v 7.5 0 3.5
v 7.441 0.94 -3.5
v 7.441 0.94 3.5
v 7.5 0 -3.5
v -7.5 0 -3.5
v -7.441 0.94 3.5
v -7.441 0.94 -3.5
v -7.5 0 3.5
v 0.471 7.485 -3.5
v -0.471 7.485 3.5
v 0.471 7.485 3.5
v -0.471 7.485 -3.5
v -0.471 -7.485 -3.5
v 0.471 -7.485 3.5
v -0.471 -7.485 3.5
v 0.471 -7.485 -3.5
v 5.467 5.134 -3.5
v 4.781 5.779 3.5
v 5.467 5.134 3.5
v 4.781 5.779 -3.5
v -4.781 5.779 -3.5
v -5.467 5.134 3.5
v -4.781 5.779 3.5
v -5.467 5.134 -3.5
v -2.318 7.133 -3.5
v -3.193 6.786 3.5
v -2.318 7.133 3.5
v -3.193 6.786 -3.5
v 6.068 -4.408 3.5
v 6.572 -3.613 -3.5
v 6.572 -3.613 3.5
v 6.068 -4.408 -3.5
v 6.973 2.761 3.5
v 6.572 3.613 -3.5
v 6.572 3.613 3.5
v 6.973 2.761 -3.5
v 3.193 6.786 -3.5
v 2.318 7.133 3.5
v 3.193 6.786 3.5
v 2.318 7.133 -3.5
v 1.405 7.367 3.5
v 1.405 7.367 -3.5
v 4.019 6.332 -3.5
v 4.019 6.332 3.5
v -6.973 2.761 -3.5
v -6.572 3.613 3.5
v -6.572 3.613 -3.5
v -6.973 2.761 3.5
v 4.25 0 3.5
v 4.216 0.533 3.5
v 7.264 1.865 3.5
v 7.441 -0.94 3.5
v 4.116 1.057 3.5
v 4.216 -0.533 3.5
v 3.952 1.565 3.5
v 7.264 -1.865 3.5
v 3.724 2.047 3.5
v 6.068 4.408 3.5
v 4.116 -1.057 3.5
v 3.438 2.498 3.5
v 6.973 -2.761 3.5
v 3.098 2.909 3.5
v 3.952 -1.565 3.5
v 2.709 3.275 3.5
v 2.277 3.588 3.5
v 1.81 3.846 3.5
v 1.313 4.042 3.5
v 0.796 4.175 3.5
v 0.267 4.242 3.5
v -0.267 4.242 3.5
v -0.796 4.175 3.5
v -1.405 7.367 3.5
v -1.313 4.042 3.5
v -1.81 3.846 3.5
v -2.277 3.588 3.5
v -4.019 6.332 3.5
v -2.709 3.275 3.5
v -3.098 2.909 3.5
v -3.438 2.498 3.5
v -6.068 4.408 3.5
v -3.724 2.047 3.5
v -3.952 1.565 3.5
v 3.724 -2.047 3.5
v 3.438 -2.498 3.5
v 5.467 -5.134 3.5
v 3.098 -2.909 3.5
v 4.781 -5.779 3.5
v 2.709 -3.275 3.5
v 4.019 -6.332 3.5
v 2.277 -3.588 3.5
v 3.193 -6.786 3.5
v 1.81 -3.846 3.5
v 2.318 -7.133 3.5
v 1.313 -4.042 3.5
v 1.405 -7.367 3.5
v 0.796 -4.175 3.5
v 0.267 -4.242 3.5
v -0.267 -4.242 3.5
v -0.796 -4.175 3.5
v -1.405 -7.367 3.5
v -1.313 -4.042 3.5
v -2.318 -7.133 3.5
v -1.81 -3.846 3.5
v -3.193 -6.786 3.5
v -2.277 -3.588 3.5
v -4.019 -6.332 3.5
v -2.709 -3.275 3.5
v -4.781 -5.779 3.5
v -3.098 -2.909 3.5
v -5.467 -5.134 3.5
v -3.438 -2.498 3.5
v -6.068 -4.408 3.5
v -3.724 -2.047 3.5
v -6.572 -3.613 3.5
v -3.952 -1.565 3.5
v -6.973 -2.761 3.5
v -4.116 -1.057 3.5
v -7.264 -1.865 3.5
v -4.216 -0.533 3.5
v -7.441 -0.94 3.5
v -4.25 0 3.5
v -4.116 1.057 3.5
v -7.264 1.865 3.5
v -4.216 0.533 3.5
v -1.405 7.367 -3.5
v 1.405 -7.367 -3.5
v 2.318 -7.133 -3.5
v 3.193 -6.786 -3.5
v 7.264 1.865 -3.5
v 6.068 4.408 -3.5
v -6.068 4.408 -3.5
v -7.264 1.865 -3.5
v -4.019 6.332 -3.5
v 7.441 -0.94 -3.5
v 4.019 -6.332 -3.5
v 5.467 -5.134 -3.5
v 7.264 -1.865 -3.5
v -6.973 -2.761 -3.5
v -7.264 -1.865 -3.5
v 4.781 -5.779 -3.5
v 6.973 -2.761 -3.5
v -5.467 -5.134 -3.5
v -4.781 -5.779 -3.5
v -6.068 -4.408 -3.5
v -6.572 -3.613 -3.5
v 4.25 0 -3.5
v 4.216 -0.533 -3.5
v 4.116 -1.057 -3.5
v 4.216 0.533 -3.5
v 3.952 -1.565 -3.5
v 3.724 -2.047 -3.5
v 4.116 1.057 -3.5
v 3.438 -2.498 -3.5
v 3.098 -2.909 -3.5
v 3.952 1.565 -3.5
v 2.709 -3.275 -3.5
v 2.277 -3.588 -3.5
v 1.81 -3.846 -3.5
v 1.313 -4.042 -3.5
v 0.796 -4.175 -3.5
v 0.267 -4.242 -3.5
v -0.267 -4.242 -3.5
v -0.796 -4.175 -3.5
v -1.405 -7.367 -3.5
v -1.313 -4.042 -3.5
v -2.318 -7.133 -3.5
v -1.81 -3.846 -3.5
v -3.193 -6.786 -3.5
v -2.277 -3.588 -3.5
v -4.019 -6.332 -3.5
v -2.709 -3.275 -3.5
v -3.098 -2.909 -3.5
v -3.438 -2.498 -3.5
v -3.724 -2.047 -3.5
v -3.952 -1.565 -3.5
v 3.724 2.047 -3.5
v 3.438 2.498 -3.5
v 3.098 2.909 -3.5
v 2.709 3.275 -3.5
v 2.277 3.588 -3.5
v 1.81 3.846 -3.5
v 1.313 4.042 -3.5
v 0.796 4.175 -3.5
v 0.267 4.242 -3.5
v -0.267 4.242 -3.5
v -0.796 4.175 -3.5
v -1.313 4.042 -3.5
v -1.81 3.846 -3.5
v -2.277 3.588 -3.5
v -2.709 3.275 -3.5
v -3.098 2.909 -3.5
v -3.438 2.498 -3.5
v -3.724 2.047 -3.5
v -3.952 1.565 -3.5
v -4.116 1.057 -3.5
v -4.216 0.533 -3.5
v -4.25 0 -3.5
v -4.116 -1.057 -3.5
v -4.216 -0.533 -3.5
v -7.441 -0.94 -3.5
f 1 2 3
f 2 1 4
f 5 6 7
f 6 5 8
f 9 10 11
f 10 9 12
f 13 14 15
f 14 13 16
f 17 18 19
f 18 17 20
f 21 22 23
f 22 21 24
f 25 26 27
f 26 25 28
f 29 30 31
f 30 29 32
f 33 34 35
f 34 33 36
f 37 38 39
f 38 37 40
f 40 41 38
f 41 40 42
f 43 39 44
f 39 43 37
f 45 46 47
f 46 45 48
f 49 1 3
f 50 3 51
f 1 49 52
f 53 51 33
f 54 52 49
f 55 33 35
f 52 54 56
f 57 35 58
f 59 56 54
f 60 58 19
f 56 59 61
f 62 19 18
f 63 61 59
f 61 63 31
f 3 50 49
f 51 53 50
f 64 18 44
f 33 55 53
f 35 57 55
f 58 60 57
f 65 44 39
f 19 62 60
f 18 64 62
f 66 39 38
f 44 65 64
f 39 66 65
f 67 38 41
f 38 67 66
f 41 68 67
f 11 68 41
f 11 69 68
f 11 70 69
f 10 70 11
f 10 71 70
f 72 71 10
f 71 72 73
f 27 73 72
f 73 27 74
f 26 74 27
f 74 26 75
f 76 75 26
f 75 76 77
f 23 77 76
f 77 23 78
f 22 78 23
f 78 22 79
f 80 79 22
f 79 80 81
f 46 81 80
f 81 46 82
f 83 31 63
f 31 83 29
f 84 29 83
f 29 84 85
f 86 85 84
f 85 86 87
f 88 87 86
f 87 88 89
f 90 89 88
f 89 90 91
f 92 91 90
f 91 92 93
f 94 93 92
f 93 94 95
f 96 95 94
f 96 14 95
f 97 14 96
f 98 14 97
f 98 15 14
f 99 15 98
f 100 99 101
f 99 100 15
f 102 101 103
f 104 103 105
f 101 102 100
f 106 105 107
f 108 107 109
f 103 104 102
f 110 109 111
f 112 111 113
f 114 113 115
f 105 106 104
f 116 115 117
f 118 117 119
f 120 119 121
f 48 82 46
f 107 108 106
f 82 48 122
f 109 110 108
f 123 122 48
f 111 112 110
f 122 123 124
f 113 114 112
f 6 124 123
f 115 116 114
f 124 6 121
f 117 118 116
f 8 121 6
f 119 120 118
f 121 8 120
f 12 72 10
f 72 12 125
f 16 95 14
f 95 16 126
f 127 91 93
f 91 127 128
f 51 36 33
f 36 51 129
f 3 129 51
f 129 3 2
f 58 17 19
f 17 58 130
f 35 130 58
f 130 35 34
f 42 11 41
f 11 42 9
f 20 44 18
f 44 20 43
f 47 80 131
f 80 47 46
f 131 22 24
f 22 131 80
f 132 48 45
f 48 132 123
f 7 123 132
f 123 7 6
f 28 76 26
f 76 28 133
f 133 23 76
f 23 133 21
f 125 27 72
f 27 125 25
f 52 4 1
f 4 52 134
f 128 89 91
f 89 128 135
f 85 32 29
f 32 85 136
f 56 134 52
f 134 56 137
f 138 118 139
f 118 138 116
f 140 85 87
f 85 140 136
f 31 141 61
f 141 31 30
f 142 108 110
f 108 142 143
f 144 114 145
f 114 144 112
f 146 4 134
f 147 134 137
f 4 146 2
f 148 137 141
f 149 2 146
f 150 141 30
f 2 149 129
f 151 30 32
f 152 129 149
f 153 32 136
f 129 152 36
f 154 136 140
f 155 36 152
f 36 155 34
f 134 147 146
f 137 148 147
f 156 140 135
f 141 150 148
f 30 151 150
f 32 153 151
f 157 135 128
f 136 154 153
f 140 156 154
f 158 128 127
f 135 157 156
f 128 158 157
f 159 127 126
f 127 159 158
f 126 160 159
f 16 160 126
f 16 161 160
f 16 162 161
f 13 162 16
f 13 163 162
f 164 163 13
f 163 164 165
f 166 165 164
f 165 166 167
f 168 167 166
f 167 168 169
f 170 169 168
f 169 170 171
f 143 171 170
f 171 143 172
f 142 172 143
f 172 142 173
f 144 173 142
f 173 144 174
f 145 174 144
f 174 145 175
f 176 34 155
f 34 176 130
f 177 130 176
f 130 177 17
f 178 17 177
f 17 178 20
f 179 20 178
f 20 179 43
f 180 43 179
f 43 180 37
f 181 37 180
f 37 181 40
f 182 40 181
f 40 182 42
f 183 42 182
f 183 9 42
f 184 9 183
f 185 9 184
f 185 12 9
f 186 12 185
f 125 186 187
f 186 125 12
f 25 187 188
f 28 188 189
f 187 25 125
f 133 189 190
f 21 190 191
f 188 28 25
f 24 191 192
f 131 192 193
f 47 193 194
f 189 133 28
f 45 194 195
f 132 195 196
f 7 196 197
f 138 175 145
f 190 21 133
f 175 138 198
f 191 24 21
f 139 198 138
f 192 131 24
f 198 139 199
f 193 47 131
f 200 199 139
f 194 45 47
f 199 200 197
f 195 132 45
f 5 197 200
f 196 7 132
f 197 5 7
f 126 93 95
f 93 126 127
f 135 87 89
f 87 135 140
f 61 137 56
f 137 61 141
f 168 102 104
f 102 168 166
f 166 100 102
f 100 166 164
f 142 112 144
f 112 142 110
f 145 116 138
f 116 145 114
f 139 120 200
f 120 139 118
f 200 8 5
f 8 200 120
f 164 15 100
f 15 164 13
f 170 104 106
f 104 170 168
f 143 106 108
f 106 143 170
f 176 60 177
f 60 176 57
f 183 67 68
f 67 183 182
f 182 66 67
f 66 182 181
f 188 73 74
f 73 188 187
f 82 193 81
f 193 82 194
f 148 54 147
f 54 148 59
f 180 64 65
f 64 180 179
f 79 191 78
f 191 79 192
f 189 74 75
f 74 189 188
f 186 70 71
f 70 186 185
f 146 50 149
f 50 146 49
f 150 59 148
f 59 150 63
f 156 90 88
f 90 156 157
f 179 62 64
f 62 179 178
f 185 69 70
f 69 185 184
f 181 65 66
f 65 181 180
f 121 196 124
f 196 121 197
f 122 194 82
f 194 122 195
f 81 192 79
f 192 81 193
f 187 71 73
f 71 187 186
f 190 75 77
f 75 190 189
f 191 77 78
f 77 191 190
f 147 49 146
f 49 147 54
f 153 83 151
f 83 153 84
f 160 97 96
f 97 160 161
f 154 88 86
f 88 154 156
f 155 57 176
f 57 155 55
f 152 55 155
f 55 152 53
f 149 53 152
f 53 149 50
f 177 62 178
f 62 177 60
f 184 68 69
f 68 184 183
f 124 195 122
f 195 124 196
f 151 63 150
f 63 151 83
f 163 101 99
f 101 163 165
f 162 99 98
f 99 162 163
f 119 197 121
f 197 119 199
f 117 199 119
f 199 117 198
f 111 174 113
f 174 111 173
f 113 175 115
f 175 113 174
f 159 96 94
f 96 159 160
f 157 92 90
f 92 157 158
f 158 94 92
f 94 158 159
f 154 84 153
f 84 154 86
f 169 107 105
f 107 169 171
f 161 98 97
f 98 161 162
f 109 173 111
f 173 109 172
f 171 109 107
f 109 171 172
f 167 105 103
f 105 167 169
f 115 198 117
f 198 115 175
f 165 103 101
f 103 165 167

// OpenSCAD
$fn = 50;


difference() {
	union() {
		translate(v = [0, 0, -3.5000000000]) {
			cylinder(h = 7, r = 7.5000000000);
		}
	}
	union() {
		translate(v = [0, 0, -100.0000000000]) {
			cylinder(h = 200, r = 4.2500000000);
		}
	}
}
